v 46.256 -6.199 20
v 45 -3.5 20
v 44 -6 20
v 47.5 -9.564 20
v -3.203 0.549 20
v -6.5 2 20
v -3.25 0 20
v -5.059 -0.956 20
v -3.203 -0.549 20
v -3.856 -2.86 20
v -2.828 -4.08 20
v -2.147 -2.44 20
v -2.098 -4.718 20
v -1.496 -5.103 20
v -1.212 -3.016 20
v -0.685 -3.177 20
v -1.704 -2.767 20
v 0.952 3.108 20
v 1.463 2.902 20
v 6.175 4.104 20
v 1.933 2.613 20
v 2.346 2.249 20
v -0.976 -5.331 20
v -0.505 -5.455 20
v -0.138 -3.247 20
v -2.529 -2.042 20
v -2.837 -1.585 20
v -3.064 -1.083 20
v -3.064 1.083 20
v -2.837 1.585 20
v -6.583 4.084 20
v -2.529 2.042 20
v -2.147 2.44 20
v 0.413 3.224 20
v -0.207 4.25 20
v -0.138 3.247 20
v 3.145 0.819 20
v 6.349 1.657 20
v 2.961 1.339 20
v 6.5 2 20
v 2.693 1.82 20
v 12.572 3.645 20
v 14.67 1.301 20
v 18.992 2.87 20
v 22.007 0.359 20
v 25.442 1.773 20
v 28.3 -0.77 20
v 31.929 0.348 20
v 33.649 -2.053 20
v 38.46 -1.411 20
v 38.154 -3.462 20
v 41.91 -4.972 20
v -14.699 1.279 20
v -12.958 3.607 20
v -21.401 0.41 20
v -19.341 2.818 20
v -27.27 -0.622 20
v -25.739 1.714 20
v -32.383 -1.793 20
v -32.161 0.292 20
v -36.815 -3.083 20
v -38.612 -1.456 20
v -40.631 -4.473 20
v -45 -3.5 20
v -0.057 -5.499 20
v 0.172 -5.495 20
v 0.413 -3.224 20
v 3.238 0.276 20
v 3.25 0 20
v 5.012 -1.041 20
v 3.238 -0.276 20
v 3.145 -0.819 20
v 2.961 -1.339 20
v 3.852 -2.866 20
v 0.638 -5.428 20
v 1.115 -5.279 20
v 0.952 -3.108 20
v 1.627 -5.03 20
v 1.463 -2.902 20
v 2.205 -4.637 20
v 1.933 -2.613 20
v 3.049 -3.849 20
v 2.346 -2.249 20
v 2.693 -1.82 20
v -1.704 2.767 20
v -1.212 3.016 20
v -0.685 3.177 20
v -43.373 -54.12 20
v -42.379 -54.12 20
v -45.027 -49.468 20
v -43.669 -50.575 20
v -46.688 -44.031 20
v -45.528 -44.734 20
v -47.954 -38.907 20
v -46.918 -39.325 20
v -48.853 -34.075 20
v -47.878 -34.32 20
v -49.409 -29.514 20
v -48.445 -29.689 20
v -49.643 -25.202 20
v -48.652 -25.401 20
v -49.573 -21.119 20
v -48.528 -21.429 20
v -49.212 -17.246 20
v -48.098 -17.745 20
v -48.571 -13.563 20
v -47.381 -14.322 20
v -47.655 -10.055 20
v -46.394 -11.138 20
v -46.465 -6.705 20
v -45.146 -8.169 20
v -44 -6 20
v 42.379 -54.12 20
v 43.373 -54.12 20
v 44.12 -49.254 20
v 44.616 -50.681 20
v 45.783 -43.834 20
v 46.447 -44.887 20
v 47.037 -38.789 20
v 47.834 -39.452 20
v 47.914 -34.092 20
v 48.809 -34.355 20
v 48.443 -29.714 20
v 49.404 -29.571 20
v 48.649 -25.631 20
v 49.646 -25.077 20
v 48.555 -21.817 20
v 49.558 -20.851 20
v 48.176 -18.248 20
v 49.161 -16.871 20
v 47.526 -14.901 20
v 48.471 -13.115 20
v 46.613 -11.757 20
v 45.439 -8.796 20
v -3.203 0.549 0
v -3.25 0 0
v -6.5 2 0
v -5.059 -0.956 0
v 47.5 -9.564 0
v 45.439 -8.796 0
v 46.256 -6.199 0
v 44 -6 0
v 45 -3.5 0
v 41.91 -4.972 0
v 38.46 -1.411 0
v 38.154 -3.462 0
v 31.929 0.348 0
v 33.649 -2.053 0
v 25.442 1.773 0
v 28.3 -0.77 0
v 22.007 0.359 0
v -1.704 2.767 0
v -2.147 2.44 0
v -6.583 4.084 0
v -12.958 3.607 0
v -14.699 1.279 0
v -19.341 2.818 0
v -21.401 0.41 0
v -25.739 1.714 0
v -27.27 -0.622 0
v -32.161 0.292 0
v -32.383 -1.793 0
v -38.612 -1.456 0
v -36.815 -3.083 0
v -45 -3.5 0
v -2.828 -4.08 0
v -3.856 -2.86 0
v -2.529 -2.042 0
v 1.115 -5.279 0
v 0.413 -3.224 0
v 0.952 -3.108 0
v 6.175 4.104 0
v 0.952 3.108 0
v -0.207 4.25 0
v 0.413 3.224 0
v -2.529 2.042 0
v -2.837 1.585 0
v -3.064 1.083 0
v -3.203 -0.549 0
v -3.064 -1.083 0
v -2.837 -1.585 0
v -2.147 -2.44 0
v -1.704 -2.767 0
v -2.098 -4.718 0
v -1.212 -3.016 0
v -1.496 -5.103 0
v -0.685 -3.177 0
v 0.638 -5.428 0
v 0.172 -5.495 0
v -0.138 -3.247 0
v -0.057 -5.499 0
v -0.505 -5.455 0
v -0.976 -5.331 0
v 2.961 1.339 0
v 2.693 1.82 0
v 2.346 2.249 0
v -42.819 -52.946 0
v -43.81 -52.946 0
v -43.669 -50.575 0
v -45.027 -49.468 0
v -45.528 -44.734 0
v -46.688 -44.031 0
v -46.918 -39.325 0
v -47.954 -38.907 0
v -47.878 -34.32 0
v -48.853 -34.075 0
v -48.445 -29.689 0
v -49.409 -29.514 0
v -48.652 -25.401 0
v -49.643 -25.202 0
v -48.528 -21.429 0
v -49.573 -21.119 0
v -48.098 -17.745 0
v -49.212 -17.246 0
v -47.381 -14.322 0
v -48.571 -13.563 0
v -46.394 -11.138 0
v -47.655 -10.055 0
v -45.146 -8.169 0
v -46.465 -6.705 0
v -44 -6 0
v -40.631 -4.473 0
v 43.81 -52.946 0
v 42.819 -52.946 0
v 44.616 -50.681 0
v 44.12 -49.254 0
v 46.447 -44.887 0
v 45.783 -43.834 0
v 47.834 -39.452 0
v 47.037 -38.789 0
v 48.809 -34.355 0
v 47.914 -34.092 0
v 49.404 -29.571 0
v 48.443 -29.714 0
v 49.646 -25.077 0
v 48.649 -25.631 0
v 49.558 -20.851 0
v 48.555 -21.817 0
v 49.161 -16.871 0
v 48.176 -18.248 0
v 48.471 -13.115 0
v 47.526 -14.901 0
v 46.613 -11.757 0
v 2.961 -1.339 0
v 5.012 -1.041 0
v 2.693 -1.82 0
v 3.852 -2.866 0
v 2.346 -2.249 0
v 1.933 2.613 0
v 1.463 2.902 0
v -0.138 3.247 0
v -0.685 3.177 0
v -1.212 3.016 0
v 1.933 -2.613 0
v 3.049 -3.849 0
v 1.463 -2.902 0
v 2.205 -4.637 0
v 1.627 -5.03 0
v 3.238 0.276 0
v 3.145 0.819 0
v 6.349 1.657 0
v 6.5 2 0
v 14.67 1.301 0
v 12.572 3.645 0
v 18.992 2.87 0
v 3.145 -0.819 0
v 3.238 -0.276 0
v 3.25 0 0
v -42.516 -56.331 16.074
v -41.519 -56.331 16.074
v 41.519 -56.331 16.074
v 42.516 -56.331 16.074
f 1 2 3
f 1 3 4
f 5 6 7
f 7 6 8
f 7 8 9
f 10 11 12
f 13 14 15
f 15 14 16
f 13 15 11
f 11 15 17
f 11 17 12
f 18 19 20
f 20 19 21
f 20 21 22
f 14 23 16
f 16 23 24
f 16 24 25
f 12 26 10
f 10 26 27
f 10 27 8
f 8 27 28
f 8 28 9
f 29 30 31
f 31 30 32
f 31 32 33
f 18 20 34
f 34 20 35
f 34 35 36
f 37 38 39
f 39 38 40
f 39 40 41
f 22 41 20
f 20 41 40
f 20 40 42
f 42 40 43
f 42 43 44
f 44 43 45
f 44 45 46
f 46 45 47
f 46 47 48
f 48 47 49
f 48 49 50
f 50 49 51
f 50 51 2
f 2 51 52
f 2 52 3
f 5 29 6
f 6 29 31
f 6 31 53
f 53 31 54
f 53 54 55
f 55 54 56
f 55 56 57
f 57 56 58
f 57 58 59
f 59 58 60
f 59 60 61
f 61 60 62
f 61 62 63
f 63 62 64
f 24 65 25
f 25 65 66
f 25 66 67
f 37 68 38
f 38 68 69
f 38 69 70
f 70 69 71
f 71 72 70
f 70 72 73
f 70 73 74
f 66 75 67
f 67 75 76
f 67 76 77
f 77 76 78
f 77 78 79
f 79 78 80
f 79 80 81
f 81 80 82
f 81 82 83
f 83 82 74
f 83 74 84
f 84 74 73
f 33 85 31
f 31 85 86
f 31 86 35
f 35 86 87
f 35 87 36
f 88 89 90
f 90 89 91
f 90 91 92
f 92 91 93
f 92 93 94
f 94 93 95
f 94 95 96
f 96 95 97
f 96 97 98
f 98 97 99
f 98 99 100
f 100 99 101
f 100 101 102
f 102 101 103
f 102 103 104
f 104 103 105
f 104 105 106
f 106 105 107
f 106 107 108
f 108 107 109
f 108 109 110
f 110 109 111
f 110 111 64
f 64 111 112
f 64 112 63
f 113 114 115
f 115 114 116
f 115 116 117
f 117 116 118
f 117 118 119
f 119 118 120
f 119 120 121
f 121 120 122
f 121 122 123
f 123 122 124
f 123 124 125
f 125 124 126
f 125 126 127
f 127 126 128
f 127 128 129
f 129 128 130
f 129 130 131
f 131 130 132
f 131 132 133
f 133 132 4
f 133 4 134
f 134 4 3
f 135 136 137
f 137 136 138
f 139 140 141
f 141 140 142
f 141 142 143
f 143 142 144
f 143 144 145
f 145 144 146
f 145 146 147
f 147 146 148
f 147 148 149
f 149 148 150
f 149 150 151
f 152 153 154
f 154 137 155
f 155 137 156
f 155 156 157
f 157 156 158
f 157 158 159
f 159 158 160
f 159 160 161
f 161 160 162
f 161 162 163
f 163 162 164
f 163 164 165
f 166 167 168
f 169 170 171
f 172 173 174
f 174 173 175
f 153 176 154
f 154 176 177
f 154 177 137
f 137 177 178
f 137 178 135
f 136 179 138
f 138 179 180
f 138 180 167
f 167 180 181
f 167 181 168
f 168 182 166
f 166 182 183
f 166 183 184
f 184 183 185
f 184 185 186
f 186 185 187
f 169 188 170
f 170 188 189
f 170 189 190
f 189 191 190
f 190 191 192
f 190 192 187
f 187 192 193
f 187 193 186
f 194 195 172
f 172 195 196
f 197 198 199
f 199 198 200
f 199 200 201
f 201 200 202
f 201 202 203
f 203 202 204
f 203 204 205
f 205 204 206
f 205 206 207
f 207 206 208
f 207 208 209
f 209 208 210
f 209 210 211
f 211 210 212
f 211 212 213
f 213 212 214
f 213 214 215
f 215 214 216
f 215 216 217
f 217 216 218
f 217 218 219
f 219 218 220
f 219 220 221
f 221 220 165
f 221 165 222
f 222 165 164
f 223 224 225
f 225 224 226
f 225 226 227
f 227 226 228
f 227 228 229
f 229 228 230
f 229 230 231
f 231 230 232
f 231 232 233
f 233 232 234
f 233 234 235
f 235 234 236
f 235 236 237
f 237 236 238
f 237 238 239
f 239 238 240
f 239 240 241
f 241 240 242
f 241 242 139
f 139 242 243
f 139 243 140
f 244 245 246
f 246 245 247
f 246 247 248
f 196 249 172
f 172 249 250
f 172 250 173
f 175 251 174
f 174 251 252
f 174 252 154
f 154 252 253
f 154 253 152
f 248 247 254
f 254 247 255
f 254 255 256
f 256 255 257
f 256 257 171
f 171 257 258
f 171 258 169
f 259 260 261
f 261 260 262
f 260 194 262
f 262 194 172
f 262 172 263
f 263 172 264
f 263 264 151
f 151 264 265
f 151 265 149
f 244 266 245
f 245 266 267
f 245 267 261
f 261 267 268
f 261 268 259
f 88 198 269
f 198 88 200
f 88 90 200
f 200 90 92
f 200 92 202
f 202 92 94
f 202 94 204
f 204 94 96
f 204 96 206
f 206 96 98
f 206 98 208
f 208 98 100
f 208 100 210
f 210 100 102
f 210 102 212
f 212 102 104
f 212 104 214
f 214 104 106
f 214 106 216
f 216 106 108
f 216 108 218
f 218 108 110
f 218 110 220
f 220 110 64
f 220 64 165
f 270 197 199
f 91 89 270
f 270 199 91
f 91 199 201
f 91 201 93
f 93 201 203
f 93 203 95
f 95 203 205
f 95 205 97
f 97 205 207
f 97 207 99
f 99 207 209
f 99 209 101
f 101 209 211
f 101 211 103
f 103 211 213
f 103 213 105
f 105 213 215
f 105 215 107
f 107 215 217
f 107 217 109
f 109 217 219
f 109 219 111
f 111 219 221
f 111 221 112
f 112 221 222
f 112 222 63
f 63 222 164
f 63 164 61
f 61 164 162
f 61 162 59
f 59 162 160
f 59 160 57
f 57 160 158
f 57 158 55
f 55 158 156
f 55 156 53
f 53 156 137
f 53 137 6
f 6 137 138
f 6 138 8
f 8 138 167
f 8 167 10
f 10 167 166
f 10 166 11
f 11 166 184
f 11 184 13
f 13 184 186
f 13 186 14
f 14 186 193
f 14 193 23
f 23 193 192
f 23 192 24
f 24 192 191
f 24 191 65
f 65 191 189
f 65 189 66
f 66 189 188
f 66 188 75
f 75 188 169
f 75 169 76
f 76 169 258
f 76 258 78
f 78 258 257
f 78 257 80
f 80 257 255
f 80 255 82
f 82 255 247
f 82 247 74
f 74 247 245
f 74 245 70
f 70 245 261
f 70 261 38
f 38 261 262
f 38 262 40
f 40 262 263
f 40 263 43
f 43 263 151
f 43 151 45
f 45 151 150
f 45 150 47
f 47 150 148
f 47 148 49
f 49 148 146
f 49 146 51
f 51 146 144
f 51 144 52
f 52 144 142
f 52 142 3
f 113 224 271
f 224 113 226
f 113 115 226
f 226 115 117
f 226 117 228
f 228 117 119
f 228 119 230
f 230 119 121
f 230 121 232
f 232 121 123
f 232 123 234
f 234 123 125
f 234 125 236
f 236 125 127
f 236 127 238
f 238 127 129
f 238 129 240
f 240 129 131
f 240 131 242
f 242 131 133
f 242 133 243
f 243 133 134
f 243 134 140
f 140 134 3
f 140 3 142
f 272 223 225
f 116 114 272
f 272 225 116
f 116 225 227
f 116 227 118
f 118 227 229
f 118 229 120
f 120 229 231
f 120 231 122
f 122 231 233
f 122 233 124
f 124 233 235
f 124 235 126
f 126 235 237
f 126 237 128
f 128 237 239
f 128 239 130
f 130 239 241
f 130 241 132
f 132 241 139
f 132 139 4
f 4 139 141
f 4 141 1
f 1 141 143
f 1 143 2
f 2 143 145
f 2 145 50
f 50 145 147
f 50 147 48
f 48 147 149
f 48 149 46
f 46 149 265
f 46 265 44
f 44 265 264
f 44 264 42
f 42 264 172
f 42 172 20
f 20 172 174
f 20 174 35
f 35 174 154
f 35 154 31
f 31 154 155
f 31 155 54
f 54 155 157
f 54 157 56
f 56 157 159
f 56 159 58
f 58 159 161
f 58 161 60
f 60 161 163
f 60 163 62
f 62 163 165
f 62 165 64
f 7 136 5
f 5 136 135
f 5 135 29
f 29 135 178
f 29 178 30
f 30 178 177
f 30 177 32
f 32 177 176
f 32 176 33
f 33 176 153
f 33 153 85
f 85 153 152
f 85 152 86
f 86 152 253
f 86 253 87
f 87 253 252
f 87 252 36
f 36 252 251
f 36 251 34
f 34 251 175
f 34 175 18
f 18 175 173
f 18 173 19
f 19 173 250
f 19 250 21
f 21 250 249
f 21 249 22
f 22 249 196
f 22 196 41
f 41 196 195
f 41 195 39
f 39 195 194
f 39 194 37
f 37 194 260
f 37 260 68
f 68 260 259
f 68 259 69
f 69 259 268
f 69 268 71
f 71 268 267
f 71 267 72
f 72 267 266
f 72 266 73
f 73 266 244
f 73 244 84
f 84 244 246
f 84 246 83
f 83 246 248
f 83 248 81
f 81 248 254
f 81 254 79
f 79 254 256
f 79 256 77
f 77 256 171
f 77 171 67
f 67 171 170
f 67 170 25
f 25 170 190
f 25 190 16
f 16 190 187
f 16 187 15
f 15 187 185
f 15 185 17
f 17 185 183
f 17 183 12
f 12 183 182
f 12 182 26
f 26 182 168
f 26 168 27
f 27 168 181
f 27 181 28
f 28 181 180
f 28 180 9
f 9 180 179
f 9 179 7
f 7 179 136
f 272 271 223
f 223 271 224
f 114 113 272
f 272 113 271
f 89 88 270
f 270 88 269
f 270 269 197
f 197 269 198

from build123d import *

# Parameters (mm, degrees)
SKETCH_1_R               = 3.25
EXTRUDE_1_DEPTH          = 20
CUT_EXTRUDE_1_DEPTH      = 81.408360659
CUT_EXTRUDE_1_DEPTH_BACK = 81.408360659


with BuildPart() as part:
    # 草圖1 → 填料-伸長1 (new body)
    with BuildSketch(Plane.XY):
        with BuildLine():
            Line((-41, -60), (-40, -60))
            add(Edge.make_bspline(
                [(-44, -6), (-55, -25), (-40, -60)],
                knots=[0, 0, 0, 1, 1, 1], degree=2))
            add(Edge.make_bspline(
                [(-6.5, 2), (-31.607950909, 0.274777248), (-44, -6)],
                knots=[0, 0, 0, 1, 1, 1], degree=2))
            add(Edge.make_bspline(
                [(-6.5, 2), (0, -13), (6.5, 2)],
                knots=[0, 0, 0, 1, 1, 1], degree=2))
            add(Edge.make_bspline(
                [(6.5, 2), (32.228671013, 0.274777248), (44, -6)],
                knots=[0, 0, 0, 1, 1, 1], degree=2))
            add(Edge.make_bspline(
                [(44, -6), (55, -25), (40, -60)],
                knots=[0, 0, 0, 1, 1, 1], degree=2))
            Line((40, -60), (41, -60))
            add(Edge.make_bspline(
                [(45, -3.5), (56, -25), (41, -60)],
                knots=[0, 0, 0, 1, 1, 1], degree=2))
            add(Edge.make_bspline(
                [(-45, -3.5), (0, 12), (45, -3.5)],
                knots=[0, 0, 0, 1, 1, 1], degree=2))
            add(Edge.make_bspline(
                [(-45, -3.5), (-56, -25), (-41, -60)],
                knots=[0, 0, 0, 1, 1, 1], degree=2))
        make_face()
        Circle(SKETCH_1_R, mode=Mode.SUBTRACT)
    extrude(amount=EXTRUDE_1_DEPTH)

    # 草圖2 → 除料-伸長1 (cut, two sides: drawn at the far end of the back side and taken through both)
    with BuildSketch(Plane(origin=(0, 0, 0), x_dir=(0, 0, -1), z_dir=(1, 0, 0)).offset(-CUT_EXTRUDE_1_DEPTH_BACK)):
        Polygon((-24.134552524, -51.791662607), (-16.07391568, -56.330917091), (-3.22546812, -53.625137827), (5.975024699, -51.687588362), (8.544692021, -68.58770729), (2.04714525, -71.745430098), (-25.301795002, -71.006269551), align=None)
    extrude(amount=CUT_EXTRUDE_1_DEPTH + CUT_EXTRUDE_1_DEPTH_BACK, mode=Mode.SUBTRACT)


solid = part.part
